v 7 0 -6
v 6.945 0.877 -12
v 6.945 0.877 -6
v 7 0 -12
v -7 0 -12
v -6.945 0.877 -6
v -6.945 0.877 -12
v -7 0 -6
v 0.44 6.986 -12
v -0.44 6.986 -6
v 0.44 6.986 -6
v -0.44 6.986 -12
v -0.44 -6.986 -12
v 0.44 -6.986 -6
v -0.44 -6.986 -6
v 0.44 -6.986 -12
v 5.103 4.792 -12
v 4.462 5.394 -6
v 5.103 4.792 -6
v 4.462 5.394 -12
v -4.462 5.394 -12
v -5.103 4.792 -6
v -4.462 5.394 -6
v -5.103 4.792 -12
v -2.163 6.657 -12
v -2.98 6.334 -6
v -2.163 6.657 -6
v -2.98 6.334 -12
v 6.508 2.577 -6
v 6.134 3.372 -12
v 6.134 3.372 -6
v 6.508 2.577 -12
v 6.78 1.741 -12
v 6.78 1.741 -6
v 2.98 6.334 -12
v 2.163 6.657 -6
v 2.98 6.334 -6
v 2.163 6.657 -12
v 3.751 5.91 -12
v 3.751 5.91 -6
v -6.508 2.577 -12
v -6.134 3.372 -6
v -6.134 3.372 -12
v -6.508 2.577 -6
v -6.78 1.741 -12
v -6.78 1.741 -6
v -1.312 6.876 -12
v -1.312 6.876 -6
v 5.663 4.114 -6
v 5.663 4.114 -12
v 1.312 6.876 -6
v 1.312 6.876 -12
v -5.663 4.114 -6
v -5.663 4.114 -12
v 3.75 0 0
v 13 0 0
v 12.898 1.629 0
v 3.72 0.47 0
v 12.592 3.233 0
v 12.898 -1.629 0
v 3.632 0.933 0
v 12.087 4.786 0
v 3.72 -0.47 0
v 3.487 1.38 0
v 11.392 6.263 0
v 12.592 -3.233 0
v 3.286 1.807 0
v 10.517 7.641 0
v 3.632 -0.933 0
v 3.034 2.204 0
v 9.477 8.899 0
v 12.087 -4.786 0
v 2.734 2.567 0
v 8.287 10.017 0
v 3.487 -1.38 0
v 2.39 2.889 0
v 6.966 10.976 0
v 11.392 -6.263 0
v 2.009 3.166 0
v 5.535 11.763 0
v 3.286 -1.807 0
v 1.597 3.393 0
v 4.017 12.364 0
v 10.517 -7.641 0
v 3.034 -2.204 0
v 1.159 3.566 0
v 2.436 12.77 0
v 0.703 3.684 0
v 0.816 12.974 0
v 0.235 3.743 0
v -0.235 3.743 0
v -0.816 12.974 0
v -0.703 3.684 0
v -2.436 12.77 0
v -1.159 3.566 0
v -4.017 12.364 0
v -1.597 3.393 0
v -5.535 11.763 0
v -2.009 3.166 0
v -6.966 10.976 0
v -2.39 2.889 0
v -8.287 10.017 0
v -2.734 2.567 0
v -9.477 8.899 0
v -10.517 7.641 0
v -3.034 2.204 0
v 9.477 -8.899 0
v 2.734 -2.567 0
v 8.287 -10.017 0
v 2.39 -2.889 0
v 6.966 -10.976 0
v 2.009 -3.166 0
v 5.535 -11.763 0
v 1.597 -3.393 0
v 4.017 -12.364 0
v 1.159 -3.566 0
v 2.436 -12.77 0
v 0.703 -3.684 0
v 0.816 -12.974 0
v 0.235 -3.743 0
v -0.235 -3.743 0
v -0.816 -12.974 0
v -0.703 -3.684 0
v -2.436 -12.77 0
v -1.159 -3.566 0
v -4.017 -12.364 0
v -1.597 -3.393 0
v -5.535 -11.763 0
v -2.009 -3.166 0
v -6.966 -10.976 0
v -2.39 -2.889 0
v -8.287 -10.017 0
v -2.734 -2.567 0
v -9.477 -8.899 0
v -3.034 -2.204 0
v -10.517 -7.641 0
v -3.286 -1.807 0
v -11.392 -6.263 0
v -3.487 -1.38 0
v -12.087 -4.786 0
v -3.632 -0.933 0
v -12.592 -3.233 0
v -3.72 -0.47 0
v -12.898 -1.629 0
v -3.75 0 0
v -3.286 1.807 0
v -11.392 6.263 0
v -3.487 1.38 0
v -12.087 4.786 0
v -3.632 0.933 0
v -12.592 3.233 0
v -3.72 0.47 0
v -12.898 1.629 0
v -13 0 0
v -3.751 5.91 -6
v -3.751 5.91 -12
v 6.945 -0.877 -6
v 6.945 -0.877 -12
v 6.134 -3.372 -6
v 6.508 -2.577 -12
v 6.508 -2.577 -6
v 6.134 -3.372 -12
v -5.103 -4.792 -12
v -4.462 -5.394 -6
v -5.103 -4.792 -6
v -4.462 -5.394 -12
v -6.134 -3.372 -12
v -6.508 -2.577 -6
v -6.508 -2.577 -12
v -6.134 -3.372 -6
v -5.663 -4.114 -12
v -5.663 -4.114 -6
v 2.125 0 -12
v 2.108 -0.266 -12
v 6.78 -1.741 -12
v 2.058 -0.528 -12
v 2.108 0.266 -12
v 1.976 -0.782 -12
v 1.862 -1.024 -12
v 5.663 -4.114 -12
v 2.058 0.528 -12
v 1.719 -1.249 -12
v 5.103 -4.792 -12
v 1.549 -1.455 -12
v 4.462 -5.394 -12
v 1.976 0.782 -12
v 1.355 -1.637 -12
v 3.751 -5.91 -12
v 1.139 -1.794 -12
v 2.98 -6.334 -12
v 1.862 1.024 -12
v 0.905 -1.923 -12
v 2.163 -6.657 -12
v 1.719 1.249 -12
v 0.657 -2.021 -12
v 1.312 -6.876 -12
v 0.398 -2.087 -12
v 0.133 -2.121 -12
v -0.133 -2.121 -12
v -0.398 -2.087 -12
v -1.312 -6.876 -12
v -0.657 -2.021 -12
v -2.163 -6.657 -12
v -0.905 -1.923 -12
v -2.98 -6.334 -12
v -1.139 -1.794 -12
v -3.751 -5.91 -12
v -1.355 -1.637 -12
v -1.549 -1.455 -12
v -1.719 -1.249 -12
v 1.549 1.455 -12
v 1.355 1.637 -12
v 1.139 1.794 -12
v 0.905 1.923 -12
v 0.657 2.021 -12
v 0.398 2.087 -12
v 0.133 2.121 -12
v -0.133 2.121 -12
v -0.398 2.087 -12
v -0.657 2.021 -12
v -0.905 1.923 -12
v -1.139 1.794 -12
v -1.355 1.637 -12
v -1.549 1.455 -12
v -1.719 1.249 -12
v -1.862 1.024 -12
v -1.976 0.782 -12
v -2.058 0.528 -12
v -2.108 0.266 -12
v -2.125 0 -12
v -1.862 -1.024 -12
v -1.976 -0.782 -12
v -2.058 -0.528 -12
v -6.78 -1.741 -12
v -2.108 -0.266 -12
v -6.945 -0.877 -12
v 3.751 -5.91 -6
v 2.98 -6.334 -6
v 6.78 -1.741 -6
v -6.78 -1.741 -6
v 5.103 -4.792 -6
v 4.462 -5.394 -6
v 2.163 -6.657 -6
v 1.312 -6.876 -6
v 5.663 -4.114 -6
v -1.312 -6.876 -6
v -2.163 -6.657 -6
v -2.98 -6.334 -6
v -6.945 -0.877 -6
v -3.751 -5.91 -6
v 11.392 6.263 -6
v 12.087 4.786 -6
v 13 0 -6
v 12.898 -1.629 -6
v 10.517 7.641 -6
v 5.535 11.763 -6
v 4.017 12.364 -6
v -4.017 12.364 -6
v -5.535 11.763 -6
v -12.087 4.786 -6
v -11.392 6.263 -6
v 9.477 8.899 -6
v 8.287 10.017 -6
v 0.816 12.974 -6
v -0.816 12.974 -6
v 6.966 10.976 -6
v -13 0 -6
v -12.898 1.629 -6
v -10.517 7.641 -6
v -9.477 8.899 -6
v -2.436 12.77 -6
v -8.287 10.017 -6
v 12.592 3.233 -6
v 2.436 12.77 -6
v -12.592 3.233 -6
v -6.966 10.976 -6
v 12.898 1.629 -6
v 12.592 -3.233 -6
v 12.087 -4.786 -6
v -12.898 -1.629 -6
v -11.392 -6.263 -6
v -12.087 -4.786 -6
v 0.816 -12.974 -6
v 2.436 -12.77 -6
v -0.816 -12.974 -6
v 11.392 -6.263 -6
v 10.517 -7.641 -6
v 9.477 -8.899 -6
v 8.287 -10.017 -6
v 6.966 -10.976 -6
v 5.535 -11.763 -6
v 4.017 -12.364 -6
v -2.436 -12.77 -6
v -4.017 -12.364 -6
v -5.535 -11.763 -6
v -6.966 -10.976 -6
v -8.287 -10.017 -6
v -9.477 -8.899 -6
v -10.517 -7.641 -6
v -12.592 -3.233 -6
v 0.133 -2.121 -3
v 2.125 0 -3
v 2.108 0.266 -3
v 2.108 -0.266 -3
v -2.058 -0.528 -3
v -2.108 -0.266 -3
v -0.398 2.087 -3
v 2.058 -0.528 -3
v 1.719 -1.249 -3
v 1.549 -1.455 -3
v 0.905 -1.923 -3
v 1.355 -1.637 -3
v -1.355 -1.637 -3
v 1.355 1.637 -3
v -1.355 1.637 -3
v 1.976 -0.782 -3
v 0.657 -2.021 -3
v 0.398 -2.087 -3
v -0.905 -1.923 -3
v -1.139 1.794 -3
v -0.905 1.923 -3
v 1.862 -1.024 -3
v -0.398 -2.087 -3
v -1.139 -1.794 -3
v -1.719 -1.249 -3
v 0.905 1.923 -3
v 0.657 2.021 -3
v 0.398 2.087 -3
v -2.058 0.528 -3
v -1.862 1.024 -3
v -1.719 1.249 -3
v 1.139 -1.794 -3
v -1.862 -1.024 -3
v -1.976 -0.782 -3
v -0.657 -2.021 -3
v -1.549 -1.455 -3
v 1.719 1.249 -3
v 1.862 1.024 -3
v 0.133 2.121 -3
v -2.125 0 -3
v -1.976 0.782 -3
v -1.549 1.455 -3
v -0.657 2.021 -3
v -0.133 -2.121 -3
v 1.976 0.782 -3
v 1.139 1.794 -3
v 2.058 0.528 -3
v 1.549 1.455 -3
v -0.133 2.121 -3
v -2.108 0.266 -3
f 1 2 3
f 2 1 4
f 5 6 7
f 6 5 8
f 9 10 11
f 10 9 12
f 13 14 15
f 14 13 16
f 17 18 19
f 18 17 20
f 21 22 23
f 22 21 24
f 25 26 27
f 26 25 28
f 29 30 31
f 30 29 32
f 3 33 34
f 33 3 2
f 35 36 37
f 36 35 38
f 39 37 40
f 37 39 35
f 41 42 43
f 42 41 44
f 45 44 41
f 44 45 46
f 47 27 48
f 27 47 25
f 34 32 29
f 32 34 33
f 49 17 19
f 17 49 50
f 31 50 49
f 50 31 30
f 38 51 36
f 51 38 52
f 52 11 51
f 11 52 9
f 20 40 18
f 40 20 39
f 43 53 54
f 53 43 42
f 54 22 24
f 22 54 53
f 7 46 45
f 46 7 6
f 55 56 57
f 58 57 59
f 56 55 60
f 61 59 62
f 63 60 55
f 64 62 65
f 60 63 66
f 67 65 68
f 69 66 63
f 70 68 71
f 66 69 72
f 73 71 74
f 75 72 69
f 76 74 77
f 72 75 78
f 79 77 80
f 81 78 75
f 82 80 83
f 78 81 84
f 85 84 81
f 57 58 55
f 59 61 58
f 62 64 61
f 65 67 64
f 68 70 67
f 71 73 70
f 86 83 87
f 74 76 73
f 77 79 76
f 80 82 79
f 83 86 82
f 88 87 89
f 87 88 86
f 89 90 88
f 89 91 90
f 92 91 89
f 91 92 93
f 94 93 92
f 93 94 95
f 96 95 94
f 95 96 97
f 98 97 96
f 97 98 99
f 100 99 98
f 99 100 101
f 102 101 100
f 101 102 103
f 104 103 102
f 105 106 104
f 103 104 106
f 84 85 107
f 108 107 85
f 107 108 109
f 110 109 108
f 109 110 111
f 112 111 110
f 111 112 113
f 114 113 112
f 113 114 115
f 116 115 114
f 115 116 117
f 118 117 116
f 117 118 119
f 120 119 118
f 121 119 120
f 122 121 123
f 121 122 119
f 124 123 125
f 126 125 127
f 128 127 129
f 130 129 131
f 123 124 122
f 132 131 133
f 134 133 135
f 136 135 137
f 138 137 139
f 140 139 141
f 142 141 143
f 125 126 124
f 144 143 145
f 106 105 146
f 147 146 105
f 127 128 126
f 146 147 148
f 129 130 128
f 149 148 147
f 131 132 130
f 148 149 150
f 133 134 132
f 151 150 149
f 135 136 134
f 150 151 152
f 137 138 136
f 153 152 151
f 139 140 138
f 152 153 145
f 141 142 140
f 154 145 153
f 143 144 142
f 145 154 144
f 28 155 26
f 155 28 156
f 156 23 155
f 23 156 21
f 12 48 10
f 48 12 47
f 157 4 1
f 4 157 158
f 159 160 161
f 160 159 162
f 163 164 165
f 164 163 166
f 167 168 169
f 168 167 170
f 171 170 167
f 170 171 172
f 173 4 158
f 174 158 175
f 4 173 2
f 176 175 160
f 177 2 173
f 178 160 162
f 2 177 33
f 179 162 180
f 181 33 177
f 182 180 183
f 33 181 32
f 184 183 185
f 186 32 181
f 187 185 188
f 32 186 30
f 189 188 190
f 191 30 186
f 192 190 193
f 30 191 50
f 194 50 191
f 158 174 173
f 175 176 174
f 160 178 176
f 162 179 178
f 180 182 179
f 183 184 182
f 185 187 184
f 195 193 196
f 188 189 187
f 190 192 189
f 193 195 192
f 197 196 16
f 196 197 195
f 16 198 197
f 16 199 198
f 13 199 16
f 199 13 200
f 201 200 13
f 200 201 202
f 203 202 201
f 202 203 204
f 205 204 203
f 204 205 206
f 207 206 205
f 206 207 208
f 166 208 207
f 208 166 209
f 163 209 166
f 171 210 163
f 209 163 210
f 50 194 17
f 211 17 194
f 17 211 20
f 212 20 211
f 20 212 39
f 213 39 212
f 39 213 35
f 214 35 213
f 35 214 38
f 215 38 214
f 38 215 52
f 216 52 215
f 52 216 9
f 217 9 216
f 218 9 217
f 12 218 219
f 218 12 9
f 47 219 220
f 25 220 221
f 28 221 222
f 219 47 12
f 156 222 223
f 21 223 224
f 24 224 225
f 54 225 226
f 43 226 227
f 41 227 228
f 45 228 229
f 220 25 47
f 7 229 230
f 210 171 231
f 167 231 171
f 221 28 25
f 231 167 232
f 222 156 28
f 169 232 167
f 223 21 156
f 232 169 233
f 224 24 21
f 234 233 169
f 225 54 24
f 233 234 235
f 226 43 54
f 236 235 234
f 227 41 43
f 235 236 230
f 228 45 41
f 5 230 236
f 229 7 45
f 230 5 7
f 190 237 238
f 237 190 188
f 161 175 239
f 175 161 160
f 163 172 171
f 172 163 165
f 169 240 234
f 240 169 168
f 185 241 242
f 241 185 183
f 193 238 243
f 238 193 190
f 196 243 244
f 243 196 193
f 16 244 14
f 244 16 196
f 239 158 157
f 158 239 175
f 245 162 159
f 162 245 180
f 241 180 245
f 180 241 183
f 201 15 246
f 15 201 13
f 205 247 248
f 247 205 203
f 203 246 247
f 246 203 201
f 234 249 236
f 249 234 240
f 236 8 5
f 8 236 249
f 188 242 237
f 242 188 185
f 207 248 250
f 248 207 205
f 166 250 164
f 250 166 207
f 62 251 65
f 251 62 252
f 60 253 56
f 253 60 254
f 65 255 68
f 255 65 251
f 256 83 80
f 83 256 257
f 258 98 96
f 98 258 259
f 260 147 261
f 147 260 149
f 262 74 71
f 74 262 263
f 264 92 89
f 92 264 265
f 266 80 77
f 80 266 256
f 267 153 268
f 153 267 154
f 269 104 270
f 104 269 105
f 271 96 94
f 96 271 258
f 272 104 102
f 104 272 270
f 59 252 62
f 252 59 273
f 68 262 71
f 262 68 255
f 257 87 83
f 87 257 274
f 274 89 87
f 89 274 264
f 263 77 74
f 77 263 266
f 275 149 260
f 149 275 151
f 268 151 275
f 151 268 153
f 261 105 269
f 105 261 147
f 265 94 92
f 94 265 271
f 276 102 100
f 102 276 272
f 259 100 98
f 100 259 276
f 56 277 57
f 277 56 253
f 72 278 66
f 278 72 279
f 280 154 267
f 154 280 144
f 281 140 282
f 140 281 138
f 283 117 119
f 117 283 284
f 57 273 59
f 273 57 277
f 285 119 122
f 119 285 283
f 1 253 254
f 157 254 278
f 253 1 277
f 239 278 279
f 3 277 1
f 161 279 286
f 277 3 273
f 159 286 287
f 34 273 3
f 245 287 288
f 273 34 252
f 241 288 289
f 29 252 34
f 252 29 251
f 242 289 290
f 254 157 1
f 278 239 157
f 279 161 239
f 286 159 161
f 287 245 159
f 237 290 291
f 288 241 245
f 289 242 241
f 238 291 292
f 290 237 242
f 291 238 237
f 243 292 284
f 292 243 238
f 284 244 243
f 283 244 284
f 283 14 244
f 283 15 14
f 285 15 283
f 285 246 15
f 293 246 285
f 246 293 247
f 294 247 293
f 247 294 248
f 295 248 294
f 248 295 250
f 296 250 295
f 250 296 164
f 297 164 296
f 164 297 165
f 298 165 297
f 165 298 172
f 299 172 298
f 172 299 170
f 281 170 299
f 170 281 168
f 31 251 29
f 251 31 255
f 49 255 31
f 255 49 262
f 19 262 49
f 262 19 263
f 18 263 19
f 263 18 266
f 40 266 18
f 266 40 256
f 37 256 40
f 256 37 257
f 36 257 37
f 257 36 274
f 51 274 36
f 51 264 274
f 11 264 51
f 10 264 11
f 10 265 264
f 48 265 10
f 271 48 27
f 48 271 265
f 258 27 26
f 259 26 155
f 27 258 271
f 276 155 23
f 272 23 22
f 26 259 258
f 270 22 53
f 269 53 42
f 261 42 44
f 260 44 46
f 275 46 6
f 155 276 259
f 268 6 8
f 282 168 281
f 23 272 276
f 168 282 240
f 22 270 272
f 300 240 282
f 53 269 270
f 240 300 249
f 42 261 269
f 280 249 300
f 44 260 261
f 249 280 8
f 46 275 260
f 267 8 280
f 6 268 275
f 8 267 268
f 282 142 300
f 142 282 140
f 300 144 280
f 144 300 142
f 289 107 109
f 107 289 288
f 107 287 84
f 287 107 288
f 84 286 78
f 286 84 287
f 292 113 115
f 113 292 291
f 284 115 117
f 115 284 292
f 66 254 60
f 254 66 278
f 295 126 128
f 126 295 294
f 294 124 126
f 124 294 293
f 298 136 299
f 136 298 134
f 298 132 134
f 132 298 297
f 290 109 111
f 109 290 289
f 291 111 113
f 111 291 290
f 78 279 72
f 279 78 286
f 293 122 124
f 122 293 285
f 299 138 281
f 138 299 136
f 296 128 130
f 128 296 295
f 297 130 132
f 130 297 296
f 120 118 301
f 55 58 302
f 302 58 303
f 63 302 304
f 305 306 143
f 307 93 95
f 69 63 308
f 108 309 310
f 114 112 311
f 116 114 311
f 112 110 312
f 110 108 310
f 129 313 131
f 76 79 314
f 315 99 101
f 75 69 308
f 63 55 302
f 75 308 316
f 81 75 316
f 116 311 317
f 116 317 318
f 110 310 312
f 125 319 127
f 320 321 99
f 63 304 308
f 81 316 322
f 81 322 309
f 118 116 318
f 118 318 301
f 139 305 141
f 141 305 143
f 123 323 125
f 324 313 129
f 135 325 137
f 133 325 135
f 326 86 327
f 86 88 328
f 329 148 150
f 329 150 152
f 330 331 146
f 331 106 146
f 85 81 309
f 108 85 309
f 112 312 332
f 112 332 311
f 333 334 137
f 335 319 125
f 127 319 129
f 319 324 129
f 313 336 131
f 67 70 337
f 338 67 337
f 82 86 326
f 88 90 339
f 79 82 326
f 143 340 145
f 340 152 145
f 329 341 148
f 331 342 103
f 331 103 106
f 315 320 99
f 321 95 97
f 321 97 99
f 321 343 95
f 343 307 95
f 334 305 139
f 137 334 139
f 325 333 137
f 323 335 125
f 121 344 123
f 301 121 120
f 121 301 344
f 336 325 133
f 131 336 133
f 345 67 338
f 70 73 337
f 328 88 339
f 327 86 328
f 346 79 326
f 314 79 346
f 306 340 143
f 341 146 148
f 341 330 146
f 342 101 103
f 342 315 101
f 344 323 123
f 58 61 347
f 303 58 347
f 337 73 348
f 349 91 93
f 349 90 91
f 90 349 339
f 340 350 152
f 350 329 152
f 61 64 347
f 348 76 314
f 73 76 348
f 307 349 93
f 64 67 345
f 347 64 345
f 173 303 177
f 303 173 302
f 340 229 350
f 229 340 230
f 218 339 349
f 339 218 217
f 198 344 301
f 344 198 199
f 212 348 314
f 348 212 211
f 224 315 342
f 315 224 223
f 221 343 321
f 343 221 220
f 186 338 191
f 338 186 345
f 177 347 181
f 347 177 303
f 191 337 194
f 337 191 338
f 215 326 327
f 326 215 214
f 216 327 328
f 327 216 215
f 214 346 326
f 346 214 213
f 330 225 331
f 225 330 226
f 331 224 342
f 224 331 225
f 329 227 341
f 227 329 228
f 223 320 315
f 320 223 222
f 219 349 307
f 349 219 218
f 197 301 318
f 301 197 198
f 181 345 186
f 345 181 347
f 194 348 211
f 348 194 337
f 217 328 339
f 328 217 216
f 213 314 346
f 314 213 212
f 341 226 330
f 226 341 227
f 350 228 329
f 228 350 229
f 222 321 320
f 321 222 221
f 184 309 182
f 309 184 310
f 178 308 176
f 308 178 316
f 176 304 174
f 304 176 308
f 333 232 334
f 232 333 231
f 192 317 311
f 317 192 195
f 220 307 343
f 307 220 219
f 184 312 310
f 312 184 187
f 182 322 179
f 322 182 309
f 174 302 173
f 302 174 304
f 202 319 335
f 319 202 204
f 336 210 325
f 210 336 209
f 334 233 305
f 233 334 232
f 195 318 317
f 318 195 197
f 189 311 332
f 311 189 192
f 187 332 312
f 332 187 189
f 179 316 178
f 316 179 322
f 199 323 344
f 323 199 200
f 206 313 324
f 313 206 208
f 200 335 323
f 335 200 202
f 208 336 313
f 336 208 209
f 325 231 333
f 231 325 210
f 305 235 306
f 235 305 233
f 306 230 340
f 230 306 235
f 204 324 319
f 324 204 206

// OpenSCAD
$fn = 50;


difference() {
	union() {
		translate(v = [0, 0, -12.0000000000]) {
			cylinder(h = 12, r = 7.0000000000);
		}
		translate(v = [0, 0, -6.0000000000]) {
			cylinder(h = 6, r = 13.0000000000);
		}
	}
	union() {
		translate(v = [0, 0, 0]) {
			rotate(a = [0, 0, 0]) {
				difference() {
					union() {
						#translate(v = [0, 0, -12.0000000000]) {
							cylinder(h = 12, r = 2.0000000000);
						}
						#translate(v = [0, 0, -3]) {
							cylinder(h = 3, r = 7.0000000000, r1 = 2.1250000000, r2 = 3.7500000000);
						}
						#translate(v = [0, 0, -12.0000000000]) {
							cylinder(h = 12, r = 2.1250000000);
						}
						#translate(v = [0, 0, -12.0000000000]) {
							cylinder(h = 12, r = 2.0000000000);
						}
					}
					union();
				}
			}
		}
	}
}
